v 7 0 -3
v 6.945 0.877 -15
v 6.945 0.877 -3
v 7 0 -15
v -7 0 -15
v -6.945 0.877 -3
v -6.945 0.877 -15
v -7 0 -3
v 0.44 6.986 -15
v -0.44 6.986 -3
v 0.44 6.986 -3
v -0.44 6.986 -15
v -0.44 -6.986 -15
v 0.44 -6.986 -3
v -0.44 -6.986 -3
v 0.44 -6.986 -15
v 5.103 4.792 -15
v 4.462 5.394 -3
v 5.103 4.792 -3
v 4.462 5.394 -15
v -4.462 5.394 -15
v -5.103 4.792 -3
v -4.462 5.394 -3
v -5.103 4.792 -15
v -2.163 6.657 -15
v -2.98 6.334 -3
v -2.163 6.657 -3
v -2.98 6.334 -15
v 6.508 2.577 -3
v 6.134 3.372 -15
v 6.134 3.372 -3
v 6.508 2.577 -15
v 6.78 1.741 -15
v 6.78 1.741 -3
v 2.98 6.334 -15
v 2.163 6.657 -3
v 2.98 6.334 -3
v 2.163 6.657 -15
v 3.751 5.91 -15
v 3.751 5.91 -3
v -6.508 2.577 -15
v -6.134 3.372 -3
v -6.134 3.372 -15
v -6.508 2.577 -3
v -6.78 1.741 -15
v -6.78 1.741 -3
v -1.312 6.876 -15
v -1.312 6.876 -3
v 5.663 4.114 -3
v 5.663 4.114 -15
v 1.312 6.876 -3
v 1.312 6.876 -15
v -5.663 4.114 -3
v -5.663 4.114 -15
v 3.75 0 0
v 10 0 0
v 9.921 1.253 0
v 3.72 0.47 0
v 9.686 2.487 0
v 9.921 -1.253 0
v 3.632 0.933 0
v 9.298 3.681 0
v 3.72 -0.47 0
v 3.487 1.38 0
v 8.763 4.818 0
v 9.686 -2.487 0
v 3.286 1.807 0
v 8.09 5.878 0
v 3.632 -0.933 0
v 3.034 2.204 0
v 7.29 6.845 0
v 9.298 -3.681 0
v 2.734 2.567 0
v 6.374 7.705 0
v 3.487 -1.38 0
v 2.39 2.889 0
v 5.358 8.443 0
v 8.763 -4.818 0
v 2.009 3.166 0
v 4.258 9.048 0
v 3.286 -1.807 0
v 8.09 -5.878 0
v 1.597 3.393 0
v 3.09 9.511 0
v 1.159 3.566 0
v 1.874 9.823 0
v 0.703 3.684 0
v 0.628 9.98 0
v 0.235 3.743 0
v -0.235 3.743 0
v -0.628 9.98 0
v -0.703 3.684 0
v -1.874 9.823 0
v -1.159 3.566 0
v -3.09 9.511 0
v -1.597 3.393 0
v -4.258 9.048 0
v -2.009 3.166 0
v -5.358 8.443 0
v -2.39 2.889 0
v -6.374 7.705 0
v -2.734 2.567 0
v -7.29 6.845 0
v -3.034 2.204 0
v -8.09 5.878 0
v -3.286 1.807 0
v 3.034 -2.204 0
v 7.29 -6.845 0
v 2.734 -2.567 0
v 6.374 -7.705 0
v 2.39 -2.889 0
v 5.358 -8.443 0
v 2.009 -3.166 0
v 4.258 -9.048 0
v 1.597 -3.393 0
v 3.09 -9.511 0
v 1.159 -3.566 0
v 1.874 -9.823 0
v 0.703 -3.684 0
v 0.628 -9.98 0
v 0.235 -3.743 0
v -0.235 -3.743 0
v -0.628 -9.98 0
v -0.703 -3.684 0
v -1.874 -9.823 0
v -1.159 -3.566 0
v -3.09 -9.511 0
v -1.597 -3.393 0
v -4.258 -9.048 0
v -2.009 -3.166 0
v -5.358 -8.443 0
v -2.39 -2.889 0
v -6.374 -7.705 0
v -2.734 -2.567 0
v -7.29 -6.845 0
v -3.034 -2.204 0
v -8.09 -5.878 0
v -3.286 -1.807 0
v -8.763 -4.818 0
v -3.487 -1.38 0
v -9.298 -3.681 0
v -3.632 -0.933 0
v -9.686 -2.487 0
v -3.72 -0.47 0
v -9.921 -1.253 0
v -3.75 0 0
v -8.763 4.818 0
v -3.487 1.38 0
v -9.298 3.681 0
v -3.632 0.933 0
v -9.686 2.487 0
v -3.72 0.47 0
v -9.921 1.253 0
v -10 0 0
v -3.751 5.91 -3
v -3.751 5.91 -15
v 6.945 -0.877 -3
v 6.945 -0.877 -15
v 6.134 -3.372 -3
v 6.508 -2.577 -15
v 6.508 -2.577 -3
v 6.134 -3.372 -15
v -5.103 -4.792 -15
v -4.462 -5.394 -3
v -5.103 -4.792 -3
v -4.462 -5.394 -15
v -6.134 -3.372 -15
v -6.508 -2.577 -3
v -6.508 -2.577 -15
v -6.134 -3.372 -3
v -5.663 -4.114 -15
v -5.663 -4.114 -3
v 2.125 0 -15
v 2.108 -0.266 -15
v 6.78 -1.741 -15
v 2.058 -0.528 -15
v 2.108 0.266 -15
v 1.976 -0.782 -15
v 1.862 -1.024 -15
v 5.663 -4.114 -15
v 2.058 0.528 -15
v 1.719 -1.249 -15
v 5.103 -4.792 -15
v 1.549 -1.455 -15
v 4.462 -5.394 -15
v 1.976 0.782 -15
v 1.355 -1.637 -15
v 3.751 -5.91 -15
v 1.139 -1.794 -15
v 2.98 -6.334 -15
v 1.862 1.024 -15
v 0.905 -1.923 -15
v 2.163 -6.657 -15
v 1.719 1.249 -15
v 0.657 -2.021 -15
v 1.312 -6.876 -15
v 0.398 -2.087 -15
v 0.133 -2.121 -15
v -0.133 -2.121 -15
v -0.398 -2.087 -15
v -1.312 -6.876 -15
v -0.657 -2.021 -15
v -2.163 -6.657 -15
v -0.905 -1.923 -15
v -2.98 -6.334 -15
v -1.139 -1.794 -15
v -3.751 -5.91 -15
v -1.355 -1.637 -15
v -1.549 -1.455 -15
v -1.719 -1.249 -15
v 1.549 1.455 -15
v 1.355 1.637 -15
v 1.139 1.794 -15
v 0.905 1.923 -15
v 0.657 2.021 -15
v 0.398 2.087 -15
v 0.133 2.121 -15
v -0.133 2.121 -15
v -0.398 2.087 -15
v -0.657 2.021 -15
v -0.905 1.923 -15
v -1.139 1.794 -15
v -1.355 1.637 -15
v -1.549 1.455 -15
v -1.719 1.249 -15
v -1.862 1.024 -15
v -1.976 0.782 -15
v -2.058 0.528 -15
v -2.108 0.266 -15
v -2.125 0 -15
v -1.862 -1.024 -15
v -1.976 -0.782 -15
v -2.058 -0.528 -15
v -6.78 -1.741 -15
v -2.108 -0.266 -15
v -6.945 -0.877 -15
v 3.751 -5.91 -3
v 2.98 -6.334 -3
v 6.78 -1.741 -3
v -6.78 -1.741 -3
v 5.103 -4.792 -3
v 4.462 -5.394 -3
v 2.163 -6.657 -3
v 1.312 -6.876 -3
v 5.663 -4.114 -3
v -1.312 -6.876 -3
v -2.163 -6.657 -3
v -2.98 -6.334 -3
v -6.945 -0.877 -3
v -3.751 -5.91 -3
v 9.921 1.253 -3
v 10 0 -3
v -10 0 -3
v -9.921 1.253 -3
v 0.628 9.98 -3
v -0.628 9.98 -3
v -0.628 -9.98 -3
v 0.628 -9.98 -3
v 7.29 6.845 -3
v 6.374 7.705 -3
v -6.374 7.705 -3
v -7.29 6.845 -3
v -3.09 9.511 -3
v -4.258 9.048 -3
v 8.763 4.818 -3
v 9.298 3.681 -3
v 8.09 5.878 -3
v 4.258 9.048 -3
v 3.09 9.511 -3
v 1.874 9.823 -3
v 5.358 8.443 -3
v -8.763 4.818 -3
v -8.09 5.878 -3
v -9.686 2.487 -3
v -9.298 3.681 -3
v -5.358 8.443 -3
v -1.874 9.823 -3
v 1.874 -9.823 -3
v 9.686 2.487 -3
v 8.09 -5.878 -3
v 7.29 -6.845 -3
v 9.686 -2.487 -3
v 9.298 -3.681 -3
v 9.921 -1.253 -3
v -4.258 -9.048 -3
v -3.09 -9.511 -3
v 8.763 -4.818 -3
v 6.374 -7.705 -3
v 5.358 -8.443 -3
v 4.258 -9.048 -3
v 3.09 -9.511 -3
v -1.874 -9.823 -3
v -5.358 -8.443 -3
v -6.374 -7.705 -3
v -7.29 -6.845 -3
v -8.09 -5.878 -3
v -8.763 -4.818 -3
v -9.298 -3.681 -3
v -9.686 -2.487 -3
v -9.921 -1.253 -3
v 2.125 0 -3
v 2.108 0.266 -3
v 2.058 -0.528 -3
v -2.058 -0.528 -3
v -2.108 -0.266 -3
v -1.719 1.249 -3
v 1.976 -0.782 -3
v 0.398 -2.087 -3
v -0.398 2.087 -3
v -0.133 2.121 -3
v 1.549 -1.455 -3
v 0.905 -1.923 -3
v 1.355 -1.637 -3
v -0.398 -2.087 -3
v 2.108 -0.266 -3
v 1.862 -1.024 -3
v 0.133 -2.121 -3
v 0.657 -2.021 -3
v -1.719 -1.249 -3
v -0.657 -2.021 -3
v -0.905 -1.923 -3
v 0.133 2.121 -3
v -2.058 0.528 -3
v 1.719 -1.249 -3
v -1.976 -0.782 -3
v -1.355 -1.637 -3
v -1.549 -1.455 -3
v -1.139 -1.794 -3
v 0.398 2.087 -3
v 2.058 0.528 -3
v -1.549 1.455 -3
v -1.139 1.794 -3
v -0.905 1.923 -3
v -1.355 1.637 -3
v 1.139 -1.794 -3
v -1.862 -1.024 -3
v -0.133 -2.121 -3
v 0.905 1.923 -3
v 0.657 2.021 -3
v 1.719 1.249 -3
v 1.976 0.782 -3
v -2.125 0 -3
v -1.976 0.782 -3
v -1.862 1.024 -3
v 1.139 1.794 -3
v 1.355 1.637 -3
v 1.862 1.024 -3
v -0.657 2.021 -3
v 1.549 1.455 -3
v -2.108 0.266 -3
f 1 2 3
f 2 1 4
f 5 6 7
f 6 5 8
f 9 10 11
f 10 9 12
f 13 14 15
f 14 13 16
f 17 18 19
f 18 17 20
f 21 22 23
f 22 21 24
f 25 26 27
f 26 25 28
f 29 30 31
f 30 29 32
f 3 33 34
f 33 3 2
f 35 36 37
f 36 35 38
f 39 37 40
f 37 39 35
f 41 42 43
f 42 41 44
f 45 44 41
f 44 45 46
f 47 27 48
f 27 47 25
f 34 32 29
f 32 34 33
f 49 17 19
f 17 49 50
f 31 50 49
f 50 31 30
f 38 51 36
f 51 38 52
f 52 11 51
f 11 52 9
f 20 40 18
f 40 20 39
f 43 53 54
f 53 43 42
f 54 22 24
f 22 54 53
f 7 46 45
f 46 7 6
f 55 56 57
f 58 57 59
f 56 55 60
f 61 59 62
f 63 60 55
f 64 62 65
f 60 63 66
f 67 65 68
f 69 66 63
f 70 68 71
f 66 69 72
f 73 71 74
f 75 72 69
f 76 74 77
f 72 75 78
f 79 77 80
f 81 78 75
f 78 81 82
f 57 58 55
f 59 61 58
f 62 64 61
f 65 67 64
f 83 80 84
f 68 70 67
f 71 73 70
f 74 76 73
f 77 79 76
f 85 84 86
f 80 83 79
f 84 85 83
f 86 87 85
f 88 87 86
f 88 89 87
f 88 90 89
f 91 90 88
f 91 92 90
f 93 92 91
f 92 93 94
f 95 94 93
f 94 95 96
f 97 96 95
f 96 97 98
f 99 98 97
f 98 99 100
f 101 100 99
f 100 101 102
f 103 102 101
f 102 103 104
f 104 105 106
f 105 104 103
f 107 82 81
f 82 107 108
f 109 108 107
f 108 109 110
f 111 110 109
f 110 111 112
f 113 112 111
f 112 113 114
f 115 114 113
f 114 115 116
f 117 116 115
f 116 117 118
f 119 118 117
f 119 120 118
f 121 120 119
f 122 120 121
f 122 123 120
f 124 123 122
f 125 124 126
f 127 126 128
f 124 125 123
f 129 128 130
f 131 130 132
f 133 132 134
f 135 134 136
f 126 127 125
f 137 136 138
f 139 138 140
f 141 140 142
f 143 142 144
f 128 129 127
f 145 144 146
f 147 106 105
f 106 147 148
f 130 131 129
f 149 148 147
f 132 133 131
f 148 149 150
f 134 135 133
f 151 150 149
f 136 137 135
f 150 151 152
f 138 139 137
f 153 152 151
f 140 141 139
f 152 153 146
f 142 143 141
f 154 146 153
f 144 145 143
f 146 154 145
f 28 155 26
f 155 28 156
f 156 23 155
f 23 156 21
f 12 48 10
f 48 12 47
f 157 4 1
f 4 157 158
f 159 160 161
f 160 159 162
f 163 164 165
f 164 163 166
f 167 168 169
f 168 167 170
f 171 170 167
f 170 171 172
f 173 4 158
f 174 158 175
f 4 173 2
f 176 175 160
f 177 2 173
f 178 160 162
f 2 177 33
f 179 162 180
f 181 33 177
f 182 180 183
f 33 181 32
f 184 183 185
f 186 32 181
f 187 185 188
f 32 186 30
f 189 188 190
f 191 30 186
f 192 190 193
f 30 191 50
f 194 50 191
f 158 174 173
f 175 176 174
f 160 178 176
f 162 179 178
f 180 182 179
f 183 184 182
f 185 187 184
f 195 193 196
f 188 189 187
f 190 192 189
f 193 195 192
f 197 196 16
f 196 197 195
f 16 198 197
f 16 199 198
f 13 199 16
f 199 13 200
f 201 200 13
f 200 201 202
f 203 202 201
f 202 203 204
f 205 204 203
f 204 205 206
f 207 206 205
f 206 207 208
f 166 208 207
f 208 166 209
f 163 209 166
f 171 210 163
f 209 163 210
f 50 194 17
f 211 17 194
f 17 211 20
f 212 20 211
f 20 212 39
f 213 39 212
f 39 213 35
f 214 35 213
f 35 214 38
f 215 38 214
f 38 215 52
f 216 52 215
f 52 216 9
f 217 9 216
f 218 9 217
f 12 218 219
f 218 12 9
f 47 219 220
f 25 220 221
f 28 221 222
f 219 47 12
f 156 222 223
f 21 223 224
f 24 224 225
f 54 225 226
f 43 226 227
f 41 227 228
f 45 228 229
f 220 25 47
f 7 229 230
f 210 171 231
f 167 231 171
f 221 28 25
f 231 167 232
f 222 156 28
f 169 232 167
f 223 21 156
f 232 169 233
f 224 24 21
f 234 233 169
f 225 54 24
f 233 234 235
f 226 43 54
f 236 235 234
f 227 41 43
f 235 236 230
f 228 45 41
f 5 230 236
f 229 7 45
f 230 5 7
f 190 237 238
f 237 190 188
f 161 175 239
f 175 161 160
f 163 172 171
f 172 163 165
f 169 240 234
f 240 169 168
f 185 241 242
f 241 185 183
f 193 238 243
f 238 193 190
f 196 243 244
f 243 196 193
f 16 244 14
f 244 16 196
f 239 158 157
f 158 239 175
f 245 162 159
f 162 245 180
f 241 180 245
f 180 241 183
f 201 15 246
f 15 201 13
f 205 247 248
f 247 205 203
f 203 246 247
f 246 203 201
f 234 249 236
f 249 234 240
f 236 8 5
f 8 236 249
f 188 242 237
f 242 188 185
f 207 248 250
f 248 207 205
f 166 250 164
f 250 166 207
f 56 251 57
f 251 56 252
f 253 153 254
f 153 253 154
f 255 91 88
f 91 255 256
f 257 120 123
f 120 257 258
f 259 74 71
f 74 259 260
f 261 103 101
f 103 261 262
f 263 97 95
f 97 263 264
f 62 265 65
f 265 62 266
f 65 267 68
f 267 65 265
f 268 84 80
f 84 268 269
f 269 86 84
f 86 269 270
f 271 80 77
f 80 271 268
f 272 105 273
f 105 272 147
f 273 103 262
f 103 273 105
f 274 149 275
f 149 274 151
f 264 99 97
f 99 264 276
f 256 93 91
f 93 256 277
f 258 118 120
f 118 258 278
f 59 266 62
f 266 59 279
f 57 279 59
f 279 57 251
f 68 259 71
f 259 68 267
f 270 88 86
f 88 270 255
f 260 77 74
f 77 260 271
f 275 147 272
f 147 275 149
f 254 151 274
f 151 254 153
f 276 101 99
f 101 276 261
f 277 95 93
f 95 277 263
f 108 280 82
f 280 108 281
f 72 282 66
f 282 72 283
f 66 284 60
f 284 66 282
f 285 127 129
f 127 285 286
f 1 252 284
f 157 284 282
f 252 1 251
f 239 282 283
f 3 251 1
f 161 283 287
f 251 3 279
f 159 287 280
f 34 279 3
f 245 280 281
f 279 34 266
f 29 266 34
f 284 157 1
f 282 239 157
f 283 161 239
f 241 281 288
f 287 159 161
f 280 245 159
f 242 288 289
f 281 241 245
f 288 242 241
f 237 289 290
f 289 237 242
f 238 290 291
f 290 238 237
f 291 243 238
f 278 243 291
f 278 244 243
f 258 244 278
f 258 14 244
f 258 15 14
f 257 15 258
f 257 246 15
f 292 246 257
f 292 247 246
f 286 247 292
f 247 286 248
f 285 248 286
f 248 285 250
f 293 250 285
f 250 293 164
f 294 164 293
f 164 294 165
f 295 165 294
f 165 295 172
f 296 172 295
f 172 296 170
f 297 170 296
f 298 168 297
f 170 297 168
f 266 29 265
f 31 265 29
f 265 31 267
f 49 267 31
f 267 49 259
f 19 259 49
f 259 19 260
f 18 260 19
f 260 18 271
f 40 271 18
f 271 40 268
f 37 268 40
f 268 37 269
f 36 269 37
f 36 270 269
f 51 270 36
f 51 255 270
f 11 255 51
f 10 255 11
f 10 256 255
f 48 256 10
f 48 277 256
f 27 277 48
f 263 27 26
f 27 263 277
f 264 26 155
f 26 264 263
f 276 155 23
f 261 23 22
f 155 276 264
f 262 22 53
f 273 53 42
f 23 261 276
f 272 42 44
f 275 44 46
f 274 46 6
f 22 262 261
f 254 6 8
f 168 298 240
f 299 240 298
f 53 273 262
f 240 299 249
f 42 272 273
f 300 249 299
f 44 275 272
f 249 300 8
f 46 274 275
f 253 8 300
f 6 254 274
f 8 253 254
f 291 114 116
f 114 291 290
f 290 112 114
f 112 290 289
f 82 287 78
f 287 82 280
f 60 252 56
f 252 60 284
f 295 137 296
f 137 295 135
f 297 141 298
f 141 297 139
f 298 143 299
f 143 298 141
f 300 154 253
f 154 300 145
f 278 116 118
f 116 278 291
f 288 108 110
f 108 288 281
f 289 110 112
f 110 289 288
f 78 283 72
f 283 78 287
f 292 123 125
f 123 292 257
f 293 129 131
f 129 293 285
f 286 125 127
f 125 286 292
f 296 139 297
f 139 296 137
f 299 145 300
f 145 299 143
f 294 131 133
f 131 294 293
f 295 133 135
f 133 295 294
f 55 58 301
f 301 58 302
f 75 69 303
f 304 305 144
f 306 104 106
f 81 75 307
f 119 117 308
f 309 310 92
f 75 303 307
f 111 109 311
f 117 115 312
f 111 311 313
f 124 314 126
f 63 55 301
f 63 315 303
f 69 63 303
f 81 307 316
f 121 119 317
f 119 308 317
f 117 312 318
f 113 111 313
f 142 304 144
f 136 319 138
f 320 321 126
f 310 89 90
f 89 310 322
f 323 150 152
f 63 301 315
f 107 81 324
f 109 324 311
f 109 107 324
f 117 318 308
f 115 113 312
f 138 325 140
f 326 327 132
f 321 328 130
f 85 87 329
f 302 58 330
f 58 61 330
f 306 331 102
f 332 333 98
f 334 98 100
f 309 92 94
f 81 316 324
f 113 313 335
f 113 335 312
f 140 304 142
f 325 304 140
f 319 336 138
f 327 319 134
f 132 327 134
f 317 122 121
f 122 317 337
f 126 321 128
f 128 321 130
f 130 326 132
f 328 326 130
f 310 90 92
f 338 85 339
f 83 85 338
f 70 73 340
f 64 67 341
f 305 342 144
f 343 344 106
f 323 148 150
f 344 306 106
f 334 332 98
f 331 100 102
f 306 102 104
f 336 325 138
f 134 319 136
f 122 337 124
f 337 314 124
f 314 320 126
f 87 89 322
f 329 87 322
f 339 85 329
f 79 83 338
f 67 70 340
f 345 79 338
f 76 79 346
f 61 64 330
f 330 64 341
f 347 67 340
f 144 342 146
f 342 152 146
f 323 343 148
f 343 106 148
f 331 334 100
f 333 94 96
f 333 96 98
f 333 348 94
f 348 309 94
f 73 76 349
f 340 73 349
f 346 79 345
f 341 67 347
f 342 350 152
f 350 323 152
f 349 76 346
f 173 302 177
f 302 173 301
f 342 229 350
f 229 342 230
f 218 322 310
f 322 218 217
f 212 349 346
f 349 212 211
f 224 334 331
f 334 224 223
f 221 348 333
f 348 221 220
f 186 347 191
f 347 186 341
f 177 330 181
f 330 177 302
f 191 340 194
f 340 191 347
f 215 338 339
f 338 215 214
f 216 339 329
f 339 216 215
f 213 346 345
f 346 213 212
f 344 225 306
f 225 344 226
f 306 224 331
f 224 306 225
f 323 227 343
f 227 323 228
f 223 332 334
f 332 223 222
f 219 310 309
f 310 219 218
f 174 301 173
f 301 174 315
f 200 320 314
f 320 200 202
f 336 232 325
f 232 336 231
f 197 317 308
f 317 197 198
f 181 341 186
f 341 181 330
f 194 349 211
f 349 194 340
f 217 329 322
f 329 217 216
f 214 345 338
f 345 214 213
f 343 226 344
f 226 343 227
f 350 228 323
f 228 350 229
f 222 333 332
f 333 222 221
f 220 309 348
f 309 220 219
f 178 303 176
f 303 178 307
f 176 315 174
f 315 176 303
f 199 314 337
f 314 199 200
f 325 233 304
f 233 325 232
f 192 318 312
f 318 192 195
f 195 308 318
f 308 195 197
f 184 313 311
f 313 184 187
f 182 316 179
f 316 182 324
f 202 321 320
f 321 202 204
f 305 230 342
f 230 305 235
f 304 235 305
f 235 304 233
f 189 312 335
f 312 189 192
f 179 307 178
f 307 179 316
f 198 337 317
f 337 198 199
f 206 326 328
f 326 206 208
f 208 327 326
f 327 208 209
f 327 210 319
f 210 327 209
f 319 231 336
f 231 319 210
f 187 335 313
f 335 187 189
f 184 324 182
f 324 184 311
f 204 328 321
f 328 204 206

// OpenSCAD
$fn = 50;


difference() {
	union() {
		translate(v = [0, 0, -15.0000000000]) {
			cylinder(h = 15, r = 7.0000000000);
		}
		translate(v = [0, 0, -3.0000000000]) {
			cylinder(h = 3, r = 10.0000000000);
		}
	}
	union() {
		translate(v = [0, 0, 0]) {
			rotate(a = [0, 0, 0]) {
				difference() {
					union() {
						#translate(v = [0, 0, -15.0000000000]) {
							cylinder(h = 15, r = 2.0000000000);
						}
						#translate(v = [0, 0, -3]) {
							cylinder(h = 3, r1 = 2.1250000000, r2 = 3.7500000000);
						}
						#translate(v = [0, 0, -15.0000000000]) {
							cylinder(h = 15, r = 2.1250000000);
						}
						#translate(v = [0, 0, -15.0000000000]) {
							cylinder(h = 15, r = 2.0000000000);
						}
					}
					union();
				}
			}
		}
	}
}
